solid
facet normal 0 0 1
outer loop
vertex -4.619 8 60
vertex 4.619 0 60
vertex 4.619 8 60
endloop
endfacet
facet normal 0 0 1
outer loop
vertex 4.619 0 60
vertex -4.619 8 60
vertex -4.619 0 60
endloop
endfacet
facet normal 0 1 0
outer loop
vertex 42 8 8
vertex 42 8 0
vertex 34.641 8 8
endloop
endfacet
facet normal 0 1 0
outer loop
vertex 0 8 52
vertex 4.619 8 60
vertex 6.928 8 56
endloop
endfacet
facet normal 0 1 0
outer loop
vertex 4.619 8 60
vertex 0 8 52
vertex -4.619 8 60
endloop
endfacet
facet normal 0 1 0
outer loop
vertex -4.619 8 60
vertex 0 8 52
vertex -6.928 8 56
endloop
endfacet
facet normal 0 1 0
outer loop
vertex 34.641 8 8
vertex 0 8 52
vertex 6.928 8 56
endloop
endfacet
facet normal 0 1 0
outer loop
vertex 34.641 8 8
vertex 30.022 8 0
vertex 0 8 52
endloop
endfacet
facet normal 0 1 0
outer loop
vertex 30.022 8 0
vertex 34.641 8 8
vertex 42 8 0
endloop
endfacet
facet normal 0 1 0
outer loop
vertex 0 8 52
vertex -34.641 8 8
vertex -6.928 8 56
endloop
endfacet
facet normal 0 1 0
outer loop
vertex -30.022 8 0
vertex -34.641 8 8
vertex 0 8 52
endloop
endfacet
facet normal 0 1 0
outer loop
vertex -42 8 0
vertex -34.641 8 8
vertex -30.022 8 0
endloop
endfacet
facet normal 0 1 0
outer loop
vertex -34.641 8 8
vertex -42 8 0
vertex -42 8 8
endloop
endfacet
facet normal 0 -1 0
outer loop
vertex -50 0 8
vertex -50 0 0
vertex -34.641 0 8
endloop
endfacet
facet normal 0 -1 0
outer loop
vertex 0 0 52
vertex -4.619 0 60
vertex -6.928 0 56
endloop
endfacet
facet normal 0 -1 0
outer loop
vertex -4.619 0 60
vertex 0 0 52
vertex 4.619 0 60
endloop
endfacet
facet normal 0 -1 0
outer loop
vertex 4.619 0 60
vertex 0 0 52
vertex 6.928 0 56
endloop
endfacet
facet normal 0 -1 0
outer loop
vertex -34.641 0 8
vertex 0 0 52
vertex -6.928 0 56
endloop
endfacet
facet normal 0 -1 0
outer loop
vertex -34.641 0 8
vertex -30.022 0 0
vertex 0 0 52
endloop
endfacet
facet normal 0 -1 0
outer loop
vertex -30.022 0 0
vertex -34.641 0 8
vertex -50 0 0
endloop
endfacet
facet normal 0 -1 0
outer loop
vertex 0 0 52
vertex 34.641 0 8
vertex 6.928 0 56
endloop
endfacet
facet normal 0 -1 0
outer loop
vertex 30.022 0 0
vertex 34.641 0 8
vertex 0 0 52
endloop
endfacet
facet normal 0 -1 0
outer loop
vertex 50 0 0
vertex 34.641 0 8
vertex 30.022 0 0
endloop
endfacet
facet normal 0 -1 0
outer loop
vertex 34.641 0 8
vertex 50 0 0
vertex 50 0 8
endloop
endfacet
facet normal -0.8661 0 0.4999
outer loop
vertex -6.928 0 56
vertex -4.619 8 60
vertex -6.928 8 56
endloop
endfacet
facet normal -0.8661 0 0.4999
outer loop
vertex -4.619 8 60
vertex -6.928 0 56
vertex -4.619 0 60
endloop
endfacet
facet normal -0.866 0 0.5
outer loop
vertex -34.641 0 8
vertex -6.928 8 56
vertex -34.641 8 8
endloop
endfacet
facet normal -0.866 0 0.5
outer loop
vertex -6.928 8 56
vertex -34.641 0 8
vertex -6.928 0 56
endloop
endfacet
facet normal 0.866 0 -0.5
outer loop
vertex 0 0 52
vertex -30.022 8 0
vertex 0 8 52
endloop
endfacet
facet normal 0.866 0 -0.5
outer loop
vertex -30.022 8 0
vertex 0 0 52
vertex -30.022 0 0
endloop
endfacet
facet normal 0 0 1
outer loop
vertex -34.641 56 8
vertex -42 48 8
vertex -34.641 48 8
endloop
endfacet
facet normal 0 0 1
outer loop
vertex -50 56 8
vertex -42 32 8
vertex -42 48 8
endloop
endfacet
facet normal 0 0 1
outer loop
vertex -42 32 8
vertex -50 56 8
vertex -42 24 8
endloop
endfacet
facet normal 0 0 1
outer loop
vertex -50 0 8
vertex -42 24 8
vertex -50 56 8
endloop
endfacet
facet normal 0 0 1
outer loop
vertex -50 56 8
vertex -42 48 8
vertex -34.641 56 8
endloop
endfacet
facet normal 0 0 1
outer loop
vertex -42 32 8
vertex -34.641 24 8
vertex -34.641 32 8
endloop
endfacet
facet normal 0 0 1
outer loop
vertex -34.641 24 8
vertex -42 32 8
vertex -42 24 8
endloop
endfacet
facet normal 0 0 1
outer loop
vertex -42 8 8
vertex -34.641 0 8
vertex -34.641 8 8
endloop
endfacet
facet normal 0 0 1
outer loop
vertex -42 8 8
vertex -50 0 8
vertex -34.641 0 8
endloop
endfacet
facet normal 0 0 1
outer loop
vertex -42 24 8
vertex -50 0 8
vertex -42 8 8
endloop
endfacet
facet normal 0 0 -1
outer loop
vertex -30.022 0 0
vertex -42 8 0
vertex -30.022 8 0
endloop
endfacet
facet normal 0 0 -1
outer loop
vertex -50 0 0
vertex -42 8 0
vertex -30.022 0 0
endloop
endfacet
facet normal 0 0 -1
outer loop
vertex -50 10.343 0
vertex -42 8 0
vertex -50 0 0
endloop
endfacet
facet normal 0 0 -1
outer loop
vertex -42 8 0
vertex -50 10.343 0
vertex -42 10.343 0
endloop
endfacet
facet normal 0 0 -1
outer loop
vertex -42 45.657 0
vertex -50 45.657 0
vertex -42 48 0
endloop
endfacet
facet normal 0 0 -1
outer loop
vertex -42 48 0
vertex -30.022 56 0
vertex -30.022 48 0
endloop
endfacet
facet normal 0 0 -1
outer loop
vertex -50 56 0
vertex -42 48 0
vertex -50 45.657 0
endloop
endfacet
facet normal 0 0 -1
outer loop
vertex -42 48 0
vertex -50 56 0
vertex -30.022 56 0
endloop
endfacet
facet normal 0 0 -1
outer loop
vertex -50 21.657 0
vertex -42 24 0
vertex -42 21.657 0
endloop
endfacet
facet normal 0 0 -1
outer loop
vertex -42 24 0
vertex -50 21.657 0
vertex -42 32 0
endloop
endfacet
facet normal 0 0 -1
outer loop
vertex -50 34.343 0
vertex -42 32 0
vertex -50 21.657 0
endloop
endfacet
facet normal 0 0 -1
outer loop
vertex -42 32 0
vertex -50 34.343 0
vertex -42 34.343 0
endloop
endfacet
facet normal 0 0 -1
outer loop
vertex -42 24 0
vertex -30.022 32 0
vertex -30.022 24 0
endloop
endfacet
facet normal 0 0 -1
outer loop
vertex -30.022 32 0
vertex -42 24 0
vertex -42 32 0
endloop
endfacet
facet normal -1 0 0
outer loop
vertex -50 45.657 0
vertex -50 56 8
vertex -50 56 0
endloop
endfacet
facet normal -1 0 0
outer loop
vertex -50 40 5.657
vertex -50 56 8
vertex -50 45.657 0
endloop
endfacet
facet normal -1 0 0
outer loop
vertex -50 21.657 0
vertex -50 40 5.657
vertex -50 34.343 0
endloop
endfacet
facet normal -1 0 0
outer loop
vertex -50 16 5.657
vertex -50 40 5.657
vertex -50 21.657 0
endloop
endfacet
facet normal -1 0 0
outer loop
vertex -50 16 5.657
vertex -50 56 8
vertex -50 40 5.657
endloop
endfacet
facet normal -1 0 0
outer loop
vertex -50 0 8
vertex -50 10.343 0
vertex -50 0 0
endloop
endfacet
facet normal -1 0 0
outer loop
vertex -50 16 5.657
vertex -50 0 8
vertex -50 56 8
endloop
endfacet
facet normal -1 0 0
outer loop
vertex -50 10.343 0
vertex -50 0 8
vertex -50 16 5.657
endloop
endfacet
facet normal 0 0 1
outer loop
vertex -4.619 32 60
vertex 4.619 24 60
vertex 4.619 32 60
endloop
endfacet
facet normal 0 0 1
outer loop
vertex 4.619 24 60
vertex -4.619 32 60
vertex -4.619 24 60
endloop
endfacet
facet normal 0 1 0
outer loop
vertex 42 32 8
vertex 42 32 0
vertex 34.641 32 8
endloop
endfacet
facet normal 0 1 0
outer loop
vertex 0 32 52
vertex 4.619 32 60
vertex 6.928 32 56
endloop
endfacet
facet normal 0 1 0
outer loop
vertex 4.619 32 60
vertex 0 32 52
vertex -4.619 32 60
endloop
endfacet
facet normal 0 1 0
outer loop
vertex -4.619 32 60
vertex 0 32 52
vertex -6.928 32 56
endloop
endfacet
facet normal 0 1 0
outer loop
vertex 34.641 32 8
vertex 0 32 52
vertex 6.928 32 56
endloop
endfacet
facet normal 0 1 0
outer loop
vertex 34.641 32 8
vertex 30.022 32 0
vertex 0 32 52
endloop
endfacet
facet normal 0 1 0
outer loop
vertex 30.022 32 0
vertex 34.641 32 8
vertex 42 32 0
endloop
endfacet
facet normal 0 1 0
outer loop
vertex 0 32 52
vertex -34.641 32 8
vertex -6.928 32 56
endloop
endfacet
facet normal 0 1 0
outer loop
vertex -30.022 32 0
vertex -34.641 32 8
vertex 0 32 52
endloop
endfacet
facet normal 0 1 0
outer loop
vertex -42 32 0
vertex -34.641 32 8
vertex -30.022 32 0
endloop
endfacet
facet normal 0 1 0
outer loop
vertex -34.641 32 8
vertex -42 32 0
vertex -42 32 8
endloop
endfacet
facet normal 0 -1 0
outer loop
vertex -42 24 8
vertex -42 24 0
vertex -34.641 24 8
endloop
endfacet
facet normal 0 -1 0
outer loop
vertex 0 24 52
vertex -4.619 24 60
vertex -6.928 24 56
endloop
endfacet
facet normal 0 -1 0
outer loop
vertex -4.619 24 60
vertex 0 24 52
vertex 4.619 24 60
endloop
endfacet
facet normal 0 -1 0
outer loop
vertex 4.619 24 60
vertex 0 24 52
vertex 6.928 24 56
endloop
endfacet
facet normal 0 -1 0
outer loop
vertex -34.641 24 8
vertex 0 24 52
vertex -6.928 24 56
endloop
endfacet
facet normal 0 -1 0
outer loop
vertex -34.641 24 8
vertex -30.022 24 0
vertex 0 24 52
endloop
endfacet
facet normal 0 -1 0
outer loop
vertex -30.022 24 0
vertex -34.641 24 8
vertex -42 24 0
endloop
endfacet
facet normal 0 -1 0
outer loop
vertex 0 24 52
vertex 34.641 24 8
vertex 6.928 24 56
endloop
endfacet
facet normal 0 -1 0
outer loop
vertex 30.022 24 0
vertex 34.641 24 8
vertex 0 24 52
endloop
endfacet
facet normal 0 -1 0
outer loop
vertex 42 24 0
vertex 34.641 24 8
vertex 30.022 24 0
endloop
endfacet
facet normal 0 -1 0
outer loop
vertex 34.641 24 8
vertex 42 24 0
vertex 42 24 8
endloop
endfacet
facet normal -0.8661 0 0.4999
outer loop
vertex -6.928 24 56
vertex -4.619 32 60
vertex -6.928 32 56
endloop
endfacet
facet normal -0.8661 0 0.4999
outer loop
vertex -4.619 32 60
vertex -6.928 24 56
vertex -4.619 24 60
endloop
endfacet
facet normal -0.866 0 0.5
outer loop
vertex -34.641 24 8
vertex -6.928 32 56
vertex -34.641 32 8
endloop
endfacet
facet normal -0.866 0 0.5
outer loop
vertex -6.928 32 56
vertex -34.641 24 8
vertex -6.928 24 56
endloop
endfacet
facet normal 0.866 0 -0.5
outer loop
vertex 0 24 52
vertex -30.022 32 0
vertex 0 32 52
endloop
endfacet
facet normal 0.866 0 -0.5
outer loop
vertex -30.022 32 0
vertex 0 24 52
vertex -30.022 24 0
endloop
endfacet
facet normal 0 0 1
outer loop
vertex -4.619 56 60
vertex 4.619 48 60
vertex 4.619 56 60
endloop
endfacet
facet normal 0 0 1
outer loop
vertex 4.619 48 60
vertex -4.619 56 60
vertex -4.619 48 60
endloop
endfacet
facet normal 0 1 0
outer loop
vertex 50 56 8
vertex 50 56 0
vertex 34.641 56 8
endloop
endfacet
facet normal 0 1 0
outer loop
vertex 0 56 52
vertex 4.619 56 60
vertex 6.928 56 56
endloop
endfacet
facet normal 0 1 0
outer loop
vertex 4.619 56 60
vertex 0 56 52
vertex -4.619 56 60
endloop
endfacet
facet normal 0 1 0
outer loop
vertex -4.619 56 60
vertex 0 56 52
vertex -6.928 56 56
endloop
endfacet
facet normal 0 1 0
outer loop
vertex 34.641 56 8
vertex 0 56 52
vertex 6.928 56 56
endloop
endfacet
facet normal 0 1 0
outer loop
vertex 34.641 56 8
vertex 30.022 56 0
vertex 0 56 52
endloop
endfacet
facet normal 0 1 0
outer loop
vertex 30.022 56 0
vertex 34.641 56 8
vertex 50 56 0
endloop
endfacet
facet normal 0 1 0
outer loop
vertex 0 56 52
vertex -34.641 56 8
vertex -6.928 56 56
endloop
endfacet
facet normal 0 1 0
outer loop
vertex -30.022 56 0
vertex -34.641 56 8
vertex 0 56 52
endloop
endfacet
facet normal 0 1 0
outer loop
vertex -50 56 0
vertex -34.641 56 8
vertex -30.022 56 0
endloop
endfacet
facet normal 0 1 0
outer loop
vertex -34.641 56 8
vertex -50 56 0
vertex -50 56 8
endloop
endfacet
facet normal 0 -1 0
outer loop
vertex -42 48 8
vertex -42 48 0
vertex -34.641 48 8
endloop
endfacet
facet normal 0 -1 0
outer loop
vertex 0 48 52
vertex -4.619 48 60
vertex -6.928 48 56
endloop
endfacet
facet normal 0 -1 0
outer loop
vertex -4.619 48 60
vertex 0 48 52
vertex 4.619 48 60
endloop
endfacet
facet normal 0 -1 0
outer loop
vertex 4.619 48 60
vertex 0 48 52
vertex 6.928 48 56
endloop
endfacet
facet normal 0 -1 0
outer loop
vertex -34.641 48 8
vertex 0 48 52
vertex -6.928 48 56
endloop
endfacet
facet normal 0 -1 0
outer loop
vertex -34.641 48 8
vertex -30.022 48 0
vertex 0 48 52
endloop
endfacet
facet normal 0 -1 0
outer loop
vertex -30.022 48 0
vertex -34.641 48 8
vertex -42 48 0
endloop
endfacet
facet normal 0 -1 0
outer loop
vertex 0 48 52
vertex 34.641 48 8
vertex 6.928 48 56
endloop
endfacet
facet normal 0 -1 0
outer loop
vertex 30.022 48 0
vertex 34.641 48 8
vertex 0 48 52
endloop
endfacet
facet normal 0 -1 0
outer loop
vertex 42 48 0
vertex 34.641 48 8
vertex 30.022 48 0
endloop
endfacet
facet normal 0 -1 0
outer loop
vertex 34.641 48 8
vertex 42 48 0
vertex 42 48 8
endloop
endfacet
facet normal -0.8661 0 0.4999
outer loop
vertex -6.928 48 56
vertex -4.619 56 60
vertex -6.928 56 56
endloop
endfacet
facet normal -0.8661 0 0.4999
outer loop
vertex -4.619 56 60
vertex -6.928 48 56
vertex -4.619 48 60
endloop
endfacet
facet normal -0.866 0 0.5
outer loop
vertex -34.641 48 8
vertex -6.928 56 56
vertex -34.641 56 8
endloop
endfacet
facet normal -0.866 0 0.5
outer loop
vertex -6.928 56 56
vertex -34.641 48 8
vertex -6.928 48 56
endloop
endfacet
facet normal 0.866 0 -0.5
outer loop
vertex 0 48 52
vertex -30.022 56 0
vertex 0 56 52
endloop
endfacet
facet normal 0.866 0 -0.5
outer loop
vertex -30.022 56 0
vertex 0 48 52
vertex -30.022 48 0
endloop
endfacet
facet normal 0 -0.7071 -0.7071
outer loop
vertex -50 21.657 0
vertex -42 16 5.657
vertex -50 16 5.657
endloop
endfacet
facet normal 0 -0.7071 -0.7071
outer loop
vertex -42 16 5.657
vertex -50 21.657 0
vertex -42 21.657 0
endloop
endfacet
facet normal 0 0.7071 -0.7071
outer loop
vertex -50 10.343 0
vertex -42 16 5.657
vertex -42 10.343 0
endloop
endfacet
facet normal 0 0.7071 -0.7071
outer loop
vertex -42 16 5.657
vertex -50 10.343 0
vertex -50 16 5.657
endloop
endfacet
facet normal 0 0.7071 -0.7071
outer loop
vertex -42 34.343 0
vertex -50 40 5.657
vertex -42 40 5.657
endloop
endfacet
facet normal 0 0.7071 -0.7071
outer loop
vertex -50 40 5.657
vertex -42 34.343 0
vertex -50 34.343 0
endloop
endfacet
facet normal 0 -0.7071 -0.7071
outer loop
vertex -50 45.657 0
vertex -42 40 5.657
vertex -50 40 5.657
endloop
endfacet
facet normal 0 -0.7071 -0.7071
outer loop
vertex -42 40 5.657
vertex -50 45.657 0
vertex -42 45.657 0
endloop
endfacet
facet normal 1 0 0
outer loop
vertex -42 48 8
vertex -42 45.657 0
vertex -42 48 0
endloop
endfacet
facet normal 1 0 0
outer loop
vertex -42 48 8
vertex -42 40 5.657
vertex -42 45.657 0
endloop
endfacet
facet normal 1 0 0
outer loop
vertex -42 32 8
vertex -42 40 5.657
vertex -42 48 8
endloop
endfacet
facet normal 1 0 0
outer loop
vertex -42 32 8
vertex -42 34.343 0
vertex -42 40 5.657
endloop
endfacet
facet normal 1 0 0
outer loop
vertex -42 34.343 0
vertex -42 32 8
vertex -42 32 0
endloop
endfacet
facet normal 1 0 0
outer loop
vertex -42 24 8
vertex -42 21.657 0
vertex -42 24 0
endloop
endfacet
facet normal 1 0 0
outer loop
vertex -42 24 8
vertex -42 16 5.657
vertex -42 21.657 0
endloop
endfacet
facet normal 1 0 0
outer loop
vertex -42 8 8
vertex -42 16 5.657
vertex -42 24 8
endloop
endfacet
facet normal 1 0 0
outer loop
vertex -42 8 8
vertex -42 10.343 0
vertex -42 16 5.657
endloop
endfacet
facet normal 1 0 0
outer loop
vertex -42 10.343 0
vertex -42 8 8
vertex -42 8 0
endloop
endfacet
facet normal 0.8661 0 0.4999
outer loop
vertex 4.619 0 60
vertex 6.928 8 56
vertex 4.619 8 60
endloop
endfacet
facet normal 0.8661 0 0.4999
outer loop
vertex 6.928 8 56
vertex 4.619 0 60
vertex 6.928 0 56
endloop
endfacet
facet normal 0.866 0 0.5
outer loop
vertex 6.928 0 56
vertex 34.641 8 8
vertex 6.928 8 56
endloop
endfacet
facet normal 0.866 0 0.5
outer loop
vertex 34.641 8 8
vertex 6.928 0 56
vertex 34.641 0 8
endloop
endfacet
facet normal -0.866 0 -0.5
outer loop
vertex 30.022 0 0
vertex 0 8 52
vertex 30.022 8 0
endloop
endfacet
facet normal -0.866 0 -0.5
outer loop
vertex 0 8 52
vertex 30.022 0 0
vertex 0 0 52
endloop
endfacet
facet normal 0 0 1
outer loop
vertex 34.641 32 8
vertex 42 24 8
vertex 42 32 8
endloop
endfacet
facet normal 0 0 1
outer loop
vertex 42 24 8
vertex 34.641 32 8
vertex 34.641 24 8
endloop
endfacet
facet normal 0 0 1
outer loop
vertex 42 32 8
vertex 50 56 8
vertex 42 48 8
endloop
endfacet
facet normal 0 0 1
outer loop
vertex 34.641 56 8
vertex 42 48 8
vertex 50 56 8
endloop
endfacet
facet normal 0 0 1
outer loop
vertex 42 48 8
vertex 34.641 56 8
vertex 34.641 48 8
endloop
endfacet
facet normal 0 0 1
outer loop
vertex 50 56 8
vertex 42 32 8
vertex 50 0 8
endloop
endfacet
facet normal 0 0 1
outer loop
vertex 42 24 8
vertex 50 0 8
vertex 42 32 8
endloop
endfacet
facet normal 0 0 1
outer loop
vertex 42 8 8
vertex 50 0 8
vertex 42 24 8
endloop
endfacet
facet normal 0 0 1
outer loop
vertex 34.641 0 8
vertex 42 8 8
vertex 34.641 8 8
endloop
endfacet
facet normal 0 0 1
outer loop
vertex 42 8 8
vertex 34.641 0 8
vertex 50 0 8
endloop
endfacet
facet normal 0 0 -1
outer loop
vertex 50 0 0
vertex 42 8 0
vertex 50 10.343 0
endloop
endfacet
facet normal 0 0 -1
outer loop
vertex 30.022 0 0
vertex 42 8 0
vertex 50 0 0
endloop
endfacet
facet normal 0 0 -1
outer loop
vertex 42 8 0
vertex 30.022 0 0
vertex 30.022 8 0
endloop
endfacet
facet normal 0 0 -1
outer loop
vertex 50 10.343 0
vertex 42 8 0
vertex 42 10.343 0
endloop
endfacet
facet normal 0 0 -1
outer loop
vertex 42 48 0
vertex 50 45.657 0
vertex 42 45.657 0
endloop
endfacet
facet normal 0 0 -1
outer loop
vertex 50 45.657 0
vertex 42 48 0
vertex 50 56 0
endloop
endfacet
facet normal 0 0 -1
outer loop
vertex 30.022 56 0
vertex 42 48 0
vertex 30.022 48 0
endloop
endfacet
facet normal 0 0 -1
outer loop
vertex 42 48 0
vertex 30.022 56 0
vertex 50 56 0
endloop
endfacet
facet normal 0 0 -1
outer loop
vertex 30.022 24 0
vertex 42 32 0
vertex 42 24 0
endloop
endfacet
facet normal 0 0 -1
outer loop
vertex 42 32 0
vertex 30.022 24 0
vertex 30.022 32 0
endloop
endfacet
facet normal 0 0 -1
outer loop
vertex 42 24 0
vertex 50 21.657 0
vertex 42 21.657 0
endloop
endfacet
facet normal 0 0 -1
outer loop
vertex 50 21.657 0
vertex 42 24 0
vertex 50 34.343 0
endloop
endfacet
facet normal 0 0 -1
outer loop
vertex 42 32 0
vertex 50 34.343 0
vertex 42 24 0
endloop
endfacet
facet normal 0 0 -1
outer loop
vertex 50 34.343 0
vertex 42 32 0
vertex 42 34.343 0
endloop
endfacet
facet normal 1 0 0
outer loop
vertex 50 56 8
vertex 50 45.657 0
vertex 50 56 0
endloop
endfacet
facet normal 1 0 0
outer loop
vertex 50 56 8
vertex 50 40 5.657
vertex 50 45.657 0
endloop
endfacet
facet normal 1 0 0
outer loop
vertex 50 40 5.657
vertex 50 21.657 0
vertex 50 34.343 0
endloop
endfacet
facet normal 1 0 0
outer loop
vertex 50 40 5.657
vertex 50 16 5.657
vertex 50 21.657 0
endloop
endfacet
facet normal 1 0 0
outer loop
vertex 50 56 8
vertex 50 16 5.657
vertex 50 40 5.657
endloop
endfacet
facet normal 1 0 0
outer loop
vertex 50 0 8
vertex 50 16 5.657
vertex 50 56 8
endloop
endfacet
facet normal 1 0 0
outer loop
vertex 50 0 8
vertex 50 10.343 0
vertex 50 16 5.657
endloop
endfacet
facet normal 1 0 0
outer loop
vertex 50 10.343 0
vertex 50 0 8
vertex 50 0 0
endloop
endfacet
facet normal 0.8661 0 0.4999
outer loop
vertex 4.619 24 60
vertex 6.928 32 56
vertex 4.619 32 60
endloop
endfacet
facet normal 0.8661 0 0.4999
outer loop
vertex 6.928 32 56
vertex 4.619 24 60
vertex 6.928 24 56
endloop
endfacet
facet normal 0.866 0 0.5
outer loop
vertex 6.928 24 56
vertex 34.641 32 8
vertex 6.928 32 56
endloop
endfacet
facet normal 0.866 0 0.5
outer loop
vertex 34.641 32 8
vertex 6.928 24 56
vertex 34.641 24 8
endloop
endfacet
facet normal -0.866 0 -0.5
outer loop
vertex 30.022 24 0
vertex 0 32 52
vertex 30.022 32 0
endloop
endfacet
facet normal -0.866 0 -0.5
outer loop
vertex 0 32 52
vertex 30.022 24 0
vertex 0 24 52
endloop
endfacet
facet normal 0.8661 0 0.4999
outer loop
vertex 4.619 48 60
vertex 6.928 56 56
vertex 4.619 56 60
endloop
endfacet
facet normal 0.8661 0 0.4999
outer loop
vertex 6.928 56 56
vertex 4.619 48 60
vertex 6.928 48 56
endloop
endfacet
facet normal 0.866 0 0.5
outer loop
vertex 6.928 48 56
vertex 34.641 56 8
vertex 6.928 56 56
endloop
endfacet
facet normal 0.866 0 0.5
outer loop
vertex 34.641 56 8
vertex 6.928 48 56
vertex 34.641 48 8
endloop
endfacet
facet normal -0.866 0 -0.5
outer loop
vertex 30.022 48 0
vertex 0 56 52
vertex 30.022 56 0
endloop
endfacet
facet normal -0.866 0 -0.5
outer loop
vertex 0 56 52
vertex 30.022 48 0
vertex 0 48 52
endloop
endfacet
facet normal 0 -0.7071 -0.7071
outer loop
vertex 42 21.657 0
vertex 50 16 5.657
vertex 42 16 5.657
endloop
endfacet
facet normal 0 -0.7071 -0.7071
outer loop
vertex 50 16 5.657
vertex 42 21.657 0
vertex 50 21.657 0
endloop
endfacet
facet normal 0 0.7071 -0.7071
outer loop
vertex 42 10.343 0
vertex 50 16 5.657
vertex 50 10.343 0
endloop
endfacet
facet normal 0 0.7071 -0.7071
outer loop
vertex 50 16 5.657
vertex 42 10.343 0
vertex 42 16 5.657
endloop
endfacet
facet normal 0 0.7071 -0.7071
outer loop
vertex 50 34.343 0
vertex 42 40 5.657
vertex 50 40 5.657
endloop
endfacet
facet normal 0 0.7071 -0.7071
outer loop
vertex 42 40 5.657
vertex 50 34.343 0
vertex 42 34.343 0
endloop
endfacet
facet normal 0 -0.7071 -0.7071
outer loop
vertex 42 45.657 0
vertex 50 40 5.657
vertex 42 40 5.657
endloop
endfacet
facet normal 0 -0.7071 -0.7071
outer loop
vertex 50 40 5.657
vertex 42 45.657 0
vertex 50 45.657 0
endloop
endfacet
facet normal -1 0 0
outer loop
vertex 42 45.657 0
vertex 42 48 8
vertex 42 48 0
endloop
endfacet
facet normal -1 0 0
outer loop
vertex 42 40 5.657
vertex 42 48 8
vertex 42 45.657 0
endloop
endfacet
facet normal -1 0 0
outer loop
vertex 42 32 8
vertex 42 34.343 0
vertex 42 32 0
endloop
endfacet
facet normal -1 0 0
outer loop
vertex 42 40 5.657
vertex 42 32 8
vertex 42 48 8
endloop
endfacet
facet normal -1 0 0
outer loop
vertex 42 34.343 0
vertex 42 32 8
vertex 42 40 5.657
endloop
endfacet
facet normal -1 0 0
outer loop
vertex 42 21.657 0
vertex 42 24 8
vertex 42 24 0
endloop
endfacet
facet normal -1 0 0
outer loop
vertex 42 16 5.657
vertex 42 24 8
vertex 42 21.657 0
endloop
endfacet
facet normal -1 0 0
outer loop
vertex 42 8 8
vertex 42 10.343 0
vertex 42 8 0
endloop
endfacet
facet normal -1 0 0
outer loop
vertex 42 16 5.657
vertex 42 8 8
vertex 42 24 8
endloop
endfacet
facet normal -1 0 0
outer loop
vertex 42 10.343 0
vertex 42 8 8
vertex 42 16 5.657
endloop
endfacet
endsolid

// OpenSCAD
// Side to side width of the rack
length = 100;

// Max height of each section divider
height = 60;

// Angle of the divider. Keep it steep to print without supports.
angle = 60;

// Number of devices to hold
num_devices = 2;

// Size in mm of each device to hold. Must match num_devices. Allow ~1mmmm so it's not too tight.
widths = [16, 16];

// Thickness of the parts. I don't recommend changing this.
thickness = 8;


// find the sublist of 'list' with indices from 'from' to 'to' 
function sublist(list, from=0, to) =
    let( end = (to==undef ? len(list)-1 : to) )
    [ for(i=[from:end]) list[i] ];

// sum all the items in a sublist
function add(v, i = 0, r = 0) = i < len(v) ? add(v, i + 1, r + v[i]) : r;

// Distances at which to place the dividers. This is calculated by doing adding all elements oof each sublist in widths. This is way more complicated than it should be, but I could not find a simpler way.

count = num_devices <  len(widths) ? num_devices : len(widths);
   
distances = [for (idx = [ 0 : count - 1 ] ) add(sublist(widths, 0, idx)) + (thickness * (idx+1)) ];    


/**
 * The angled part and the foot of a section divider.
 *
 * This is composed of bar rotated vertically by angle, a top hat that closes it on top, and
 * a foot that extends out to cmplete length/2
 */
module half_divider() {
    //                  /|
    //  c              / | a (height) 
    // (length)       /  |
    //               /   |
    //               -----
    //            b (width)
    
    // top hat: closes the arm at the top so it has a flat top
    //hat_width = thickness * sin(angle);
    hat_height = thickness * cos(angle) * 2;
    
    // Adjust the arm height to account to for the top hat
    calc_height = height - hat_height;
    
    top_hat();
    
    // Hypotenuse of the triangle rectangle
    arm_length = calc_height / sin(angle);
    
    // Base of the triangle rectangle
    base = arm_length * sin(90-angle);
    
    translate([-base, 0, 0])         
    rotate([0, -angle, 0])
    cube([arm_length, thickness, thickness]);
    
    foot_length = (length/2) - base;
    translate([-base - foot_length, 0, 0]) cube([foot_length, thickness, thickness]);
}

module top_hat() {
    
    // top hat: closes the arm at the top so it has a flat top
    hat_width = thickness * sin(angle);
    hat_height = thickness * cos(angle) * 2;
    
    // Adjust the arm height to account to for the top hat
    calc_height = height - hat_height;
    
    // Hypotenuse of the triangle rectangle
    arm_length = calc_height / sin(angle);
    
    // Base of the triangle rectangle
    base = arm_length * sin(90-angle);
  
    intersection() {
        translate([-hat_width, 0, calc_height]) cube([hat_width, thickness, hat_height]);
        
        translate([-base, 0, 0])         
        rotate([0, -angle, 0])
        cube([arm_length * 4, thickness, thickness]);
    }
    
}

/**
 * Build the sidebar
 *
 * Horizontal bar that joins the dividers together and with wires cutout in the middle of each hole
 */
module sidebar() {
     difference() {
        
        // A long bar that cuts across the feet of the dividers
        translate([-length/2, 0, 0]) cube([thickness, distances[len(distances) - 1]+thickness, thickness]);
        
        // Each cutout is a bar rotated 45 degrees lenghtwise, and translated down on Z so only the top part cuts the sidebar
        union() {
            for (idx = [ 0 : len(distances) - 1 ] ) {        
                distance = distances[idx];
                width = widths[idx];
                translate([-length/2-1, distance - width/2, -thickness * sqrt(2)/2]) rotate([45, 0, 0]) cube([thickness +2, thickness, thickness]);
            }
        }   
         
     }
}


module half_rack() {
    // lay out the dividers
    half_divider();    
    for (idx = [ 0 : len(distances) - 1 ] ) {        
        distance = distances[idx];
        translate([0, distance, 0]) half_divider();
    }    
    // add the sidebar
    sidebar();
}


union() {
    half_rack();
    mirror([1, 0, 0]) half_rack();
}
